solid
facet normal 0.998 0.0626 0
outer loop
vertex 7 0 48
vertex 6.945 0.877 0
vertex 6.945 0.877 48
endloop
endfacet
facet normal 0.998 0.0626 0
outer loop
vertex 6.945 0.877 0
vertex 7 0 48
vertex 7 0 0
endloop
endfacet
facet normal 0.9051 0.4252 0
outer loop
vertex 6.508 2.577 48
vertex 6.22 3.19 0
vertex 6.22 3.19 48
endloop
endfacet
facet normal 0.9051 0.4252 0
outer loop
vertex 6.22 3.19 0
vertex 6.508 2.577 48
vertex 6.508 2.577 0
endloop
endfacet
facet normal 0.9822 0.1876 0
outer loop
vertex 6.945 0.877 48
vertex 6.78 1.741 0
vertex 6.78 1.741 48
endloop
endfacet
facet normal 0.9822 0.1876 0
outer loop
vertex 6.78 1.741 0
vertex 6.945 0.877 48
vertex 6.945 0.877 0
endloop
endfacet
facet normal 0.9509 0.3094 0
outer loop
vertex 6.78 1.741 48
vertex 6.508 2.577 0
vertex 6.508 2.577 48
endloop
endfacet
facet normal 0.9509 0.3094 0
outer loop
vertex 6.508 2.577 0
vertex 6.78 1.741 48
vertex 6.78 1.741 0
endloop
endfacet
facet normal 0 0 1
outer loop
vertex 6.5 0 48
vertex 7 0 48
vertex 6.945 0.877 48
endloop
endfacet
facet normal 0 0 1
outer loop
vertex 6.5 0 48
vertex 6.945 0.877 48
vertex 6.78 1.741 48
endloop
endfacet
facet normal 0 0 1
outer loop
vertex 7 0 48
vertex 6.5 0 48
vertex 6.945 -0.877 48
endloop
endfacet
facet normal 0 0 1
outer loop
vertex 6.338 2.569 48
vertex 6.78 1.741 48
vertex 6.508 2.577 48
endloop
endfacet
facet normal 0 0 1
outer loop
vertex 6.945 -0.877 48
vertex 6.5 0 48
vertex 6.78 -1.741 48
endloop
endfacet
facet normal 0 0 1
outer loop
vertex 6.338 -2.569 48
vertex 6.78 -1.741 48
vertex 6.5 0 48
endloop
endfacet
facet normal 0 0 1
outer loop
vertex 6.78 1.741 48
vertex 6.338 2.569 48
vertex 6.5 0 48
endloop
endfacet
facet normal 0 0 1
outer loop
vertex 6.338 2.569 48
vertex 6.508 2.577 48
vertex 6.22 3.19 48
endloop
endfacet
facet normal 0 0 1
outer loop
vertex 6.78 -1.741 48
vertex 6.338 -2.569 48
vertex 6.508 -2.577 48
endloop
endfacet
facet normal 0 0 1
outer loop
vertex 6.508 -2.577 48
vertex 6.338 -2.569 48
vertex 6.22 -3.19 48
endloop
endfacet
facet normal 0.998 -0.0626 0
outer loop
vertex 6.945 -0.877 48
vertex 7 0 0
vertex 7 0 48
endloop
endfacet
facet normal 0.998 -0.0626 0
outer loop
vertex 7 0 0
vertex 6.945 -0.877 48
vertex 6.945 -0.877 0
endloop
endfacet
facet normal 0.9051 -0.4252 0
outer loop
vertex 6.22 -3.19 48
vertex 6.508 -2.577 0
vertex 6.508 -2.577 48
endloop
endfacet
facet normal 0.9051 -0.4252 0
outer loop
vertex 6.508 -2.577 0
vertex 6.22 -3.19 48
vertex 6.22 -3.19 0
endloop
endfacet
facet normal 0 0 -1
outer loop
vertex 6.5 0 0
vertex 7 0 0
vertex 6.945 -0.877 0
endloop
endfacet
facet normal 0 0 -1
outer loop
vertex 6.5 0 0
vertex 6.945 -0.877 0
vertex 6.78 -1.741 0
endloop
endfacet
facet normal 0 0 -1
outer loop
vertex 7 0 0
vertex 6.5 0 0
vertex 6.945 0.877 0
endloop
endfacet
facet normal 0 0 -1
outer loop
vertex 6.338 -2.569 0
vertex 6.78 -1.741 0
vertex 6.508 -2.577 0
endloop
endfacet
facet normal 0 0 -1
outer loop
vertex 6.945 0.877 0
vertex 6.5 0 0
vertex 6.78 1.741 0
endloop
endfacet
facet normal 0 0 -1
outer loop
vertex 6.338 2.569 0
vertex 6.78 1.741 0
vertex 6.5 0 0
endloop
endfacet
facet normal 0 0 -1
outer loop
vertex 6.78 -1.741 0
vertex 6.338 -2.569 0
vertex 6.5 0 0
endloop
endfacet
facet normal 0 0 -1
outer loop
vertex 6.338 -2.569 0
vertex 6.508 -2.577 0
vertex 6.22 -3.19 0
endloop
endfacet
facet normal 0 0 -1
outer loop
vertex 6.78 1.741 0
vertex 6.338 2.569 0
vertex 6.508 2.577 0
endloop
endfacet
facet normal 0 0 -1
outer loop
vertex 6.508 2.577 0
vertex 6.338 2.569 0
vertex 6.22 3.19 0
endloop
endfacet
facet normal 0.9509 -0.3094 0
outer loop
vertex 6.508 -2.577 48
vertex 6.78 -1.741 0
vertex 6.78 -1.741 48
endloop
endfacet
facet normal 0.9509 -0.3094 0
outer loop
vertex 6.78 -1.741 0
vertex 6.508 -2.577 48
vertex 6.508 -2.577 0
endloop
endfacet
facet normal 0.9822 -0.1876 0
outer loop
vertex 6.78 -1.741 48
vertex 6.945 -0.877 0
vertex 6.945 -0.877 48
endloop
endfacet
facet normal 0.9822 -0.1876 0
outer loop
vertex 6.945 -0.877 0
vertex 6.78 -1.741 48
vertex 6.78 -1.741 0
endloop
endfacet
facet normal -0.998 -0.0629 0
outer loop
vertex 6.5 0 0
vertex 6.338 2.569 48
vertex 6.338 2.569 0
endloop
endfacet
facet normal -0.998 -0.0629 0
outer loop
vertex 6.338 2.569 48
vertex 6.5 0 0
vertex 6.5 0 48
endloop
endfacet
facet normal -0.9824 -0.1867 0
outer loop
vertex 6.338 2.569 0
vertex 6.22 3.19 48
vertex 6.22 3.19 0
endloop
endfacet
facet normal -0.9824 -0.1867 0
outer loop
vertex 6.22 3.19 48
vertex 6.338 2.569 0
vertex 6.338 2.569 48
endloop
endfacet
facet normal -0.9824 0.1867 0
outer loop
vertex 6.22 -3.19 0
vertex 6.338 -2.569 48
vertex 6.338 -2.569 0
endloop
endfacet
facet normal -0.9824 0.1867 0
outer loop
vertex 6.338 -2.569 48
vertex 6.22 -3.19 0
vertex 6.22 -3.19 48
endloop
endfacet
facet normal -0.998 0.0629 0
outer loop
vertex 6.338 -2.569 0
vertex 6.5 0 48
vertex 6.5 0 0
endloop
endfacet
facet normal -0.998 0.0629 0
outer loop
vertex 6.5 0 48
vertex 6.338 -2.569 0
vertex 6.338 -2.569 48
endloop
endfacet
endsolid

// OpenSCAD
$fn = 50;


difference() {
	union() {
		cylinder(h = 48, r = 7.0000000000);
		translate(v = [-17.0000000000, 0, 0]) {
			cylinder(h = 48, r = 7.0000000000);
		}
	}
	union() {
		cylinder(h = 48, r = 3.2500000000);
		cylinder(h = 48, r = 1.8000000000);
		cylinder(h = 48, r = 1.8000000000);
		cylinder(h = 48, r = 1.8000000000);
		translate(v = [-21.5000000000, 0, 0]) {
			hull() {
				translate(v = [-3.7500000000, 0.0000000000, 0]) {
					cylinder(h = 48, r = 10.5000000000);
				}
				translate(v = [3.7500000000, 0.0000000000, 0]) {
					cylinder(h = 48, r = 10.5000000000);
				}
				translate(v = [-3.7500000000, -0.0000000000, 0]) {
					cylinder(h = 48, r = 10.5000000000);
				}
				translate(v = [3.7500000000, -0.0000000000, 0]) {
					cylinder(h = 48, r = 10.5000000000);
				}
			}
		}
		translate(v = [-14.0000000000, 0, 0.0000000000]) {
			cylinder(h = 48, r = 20.5000000000);
		}
	}
}
